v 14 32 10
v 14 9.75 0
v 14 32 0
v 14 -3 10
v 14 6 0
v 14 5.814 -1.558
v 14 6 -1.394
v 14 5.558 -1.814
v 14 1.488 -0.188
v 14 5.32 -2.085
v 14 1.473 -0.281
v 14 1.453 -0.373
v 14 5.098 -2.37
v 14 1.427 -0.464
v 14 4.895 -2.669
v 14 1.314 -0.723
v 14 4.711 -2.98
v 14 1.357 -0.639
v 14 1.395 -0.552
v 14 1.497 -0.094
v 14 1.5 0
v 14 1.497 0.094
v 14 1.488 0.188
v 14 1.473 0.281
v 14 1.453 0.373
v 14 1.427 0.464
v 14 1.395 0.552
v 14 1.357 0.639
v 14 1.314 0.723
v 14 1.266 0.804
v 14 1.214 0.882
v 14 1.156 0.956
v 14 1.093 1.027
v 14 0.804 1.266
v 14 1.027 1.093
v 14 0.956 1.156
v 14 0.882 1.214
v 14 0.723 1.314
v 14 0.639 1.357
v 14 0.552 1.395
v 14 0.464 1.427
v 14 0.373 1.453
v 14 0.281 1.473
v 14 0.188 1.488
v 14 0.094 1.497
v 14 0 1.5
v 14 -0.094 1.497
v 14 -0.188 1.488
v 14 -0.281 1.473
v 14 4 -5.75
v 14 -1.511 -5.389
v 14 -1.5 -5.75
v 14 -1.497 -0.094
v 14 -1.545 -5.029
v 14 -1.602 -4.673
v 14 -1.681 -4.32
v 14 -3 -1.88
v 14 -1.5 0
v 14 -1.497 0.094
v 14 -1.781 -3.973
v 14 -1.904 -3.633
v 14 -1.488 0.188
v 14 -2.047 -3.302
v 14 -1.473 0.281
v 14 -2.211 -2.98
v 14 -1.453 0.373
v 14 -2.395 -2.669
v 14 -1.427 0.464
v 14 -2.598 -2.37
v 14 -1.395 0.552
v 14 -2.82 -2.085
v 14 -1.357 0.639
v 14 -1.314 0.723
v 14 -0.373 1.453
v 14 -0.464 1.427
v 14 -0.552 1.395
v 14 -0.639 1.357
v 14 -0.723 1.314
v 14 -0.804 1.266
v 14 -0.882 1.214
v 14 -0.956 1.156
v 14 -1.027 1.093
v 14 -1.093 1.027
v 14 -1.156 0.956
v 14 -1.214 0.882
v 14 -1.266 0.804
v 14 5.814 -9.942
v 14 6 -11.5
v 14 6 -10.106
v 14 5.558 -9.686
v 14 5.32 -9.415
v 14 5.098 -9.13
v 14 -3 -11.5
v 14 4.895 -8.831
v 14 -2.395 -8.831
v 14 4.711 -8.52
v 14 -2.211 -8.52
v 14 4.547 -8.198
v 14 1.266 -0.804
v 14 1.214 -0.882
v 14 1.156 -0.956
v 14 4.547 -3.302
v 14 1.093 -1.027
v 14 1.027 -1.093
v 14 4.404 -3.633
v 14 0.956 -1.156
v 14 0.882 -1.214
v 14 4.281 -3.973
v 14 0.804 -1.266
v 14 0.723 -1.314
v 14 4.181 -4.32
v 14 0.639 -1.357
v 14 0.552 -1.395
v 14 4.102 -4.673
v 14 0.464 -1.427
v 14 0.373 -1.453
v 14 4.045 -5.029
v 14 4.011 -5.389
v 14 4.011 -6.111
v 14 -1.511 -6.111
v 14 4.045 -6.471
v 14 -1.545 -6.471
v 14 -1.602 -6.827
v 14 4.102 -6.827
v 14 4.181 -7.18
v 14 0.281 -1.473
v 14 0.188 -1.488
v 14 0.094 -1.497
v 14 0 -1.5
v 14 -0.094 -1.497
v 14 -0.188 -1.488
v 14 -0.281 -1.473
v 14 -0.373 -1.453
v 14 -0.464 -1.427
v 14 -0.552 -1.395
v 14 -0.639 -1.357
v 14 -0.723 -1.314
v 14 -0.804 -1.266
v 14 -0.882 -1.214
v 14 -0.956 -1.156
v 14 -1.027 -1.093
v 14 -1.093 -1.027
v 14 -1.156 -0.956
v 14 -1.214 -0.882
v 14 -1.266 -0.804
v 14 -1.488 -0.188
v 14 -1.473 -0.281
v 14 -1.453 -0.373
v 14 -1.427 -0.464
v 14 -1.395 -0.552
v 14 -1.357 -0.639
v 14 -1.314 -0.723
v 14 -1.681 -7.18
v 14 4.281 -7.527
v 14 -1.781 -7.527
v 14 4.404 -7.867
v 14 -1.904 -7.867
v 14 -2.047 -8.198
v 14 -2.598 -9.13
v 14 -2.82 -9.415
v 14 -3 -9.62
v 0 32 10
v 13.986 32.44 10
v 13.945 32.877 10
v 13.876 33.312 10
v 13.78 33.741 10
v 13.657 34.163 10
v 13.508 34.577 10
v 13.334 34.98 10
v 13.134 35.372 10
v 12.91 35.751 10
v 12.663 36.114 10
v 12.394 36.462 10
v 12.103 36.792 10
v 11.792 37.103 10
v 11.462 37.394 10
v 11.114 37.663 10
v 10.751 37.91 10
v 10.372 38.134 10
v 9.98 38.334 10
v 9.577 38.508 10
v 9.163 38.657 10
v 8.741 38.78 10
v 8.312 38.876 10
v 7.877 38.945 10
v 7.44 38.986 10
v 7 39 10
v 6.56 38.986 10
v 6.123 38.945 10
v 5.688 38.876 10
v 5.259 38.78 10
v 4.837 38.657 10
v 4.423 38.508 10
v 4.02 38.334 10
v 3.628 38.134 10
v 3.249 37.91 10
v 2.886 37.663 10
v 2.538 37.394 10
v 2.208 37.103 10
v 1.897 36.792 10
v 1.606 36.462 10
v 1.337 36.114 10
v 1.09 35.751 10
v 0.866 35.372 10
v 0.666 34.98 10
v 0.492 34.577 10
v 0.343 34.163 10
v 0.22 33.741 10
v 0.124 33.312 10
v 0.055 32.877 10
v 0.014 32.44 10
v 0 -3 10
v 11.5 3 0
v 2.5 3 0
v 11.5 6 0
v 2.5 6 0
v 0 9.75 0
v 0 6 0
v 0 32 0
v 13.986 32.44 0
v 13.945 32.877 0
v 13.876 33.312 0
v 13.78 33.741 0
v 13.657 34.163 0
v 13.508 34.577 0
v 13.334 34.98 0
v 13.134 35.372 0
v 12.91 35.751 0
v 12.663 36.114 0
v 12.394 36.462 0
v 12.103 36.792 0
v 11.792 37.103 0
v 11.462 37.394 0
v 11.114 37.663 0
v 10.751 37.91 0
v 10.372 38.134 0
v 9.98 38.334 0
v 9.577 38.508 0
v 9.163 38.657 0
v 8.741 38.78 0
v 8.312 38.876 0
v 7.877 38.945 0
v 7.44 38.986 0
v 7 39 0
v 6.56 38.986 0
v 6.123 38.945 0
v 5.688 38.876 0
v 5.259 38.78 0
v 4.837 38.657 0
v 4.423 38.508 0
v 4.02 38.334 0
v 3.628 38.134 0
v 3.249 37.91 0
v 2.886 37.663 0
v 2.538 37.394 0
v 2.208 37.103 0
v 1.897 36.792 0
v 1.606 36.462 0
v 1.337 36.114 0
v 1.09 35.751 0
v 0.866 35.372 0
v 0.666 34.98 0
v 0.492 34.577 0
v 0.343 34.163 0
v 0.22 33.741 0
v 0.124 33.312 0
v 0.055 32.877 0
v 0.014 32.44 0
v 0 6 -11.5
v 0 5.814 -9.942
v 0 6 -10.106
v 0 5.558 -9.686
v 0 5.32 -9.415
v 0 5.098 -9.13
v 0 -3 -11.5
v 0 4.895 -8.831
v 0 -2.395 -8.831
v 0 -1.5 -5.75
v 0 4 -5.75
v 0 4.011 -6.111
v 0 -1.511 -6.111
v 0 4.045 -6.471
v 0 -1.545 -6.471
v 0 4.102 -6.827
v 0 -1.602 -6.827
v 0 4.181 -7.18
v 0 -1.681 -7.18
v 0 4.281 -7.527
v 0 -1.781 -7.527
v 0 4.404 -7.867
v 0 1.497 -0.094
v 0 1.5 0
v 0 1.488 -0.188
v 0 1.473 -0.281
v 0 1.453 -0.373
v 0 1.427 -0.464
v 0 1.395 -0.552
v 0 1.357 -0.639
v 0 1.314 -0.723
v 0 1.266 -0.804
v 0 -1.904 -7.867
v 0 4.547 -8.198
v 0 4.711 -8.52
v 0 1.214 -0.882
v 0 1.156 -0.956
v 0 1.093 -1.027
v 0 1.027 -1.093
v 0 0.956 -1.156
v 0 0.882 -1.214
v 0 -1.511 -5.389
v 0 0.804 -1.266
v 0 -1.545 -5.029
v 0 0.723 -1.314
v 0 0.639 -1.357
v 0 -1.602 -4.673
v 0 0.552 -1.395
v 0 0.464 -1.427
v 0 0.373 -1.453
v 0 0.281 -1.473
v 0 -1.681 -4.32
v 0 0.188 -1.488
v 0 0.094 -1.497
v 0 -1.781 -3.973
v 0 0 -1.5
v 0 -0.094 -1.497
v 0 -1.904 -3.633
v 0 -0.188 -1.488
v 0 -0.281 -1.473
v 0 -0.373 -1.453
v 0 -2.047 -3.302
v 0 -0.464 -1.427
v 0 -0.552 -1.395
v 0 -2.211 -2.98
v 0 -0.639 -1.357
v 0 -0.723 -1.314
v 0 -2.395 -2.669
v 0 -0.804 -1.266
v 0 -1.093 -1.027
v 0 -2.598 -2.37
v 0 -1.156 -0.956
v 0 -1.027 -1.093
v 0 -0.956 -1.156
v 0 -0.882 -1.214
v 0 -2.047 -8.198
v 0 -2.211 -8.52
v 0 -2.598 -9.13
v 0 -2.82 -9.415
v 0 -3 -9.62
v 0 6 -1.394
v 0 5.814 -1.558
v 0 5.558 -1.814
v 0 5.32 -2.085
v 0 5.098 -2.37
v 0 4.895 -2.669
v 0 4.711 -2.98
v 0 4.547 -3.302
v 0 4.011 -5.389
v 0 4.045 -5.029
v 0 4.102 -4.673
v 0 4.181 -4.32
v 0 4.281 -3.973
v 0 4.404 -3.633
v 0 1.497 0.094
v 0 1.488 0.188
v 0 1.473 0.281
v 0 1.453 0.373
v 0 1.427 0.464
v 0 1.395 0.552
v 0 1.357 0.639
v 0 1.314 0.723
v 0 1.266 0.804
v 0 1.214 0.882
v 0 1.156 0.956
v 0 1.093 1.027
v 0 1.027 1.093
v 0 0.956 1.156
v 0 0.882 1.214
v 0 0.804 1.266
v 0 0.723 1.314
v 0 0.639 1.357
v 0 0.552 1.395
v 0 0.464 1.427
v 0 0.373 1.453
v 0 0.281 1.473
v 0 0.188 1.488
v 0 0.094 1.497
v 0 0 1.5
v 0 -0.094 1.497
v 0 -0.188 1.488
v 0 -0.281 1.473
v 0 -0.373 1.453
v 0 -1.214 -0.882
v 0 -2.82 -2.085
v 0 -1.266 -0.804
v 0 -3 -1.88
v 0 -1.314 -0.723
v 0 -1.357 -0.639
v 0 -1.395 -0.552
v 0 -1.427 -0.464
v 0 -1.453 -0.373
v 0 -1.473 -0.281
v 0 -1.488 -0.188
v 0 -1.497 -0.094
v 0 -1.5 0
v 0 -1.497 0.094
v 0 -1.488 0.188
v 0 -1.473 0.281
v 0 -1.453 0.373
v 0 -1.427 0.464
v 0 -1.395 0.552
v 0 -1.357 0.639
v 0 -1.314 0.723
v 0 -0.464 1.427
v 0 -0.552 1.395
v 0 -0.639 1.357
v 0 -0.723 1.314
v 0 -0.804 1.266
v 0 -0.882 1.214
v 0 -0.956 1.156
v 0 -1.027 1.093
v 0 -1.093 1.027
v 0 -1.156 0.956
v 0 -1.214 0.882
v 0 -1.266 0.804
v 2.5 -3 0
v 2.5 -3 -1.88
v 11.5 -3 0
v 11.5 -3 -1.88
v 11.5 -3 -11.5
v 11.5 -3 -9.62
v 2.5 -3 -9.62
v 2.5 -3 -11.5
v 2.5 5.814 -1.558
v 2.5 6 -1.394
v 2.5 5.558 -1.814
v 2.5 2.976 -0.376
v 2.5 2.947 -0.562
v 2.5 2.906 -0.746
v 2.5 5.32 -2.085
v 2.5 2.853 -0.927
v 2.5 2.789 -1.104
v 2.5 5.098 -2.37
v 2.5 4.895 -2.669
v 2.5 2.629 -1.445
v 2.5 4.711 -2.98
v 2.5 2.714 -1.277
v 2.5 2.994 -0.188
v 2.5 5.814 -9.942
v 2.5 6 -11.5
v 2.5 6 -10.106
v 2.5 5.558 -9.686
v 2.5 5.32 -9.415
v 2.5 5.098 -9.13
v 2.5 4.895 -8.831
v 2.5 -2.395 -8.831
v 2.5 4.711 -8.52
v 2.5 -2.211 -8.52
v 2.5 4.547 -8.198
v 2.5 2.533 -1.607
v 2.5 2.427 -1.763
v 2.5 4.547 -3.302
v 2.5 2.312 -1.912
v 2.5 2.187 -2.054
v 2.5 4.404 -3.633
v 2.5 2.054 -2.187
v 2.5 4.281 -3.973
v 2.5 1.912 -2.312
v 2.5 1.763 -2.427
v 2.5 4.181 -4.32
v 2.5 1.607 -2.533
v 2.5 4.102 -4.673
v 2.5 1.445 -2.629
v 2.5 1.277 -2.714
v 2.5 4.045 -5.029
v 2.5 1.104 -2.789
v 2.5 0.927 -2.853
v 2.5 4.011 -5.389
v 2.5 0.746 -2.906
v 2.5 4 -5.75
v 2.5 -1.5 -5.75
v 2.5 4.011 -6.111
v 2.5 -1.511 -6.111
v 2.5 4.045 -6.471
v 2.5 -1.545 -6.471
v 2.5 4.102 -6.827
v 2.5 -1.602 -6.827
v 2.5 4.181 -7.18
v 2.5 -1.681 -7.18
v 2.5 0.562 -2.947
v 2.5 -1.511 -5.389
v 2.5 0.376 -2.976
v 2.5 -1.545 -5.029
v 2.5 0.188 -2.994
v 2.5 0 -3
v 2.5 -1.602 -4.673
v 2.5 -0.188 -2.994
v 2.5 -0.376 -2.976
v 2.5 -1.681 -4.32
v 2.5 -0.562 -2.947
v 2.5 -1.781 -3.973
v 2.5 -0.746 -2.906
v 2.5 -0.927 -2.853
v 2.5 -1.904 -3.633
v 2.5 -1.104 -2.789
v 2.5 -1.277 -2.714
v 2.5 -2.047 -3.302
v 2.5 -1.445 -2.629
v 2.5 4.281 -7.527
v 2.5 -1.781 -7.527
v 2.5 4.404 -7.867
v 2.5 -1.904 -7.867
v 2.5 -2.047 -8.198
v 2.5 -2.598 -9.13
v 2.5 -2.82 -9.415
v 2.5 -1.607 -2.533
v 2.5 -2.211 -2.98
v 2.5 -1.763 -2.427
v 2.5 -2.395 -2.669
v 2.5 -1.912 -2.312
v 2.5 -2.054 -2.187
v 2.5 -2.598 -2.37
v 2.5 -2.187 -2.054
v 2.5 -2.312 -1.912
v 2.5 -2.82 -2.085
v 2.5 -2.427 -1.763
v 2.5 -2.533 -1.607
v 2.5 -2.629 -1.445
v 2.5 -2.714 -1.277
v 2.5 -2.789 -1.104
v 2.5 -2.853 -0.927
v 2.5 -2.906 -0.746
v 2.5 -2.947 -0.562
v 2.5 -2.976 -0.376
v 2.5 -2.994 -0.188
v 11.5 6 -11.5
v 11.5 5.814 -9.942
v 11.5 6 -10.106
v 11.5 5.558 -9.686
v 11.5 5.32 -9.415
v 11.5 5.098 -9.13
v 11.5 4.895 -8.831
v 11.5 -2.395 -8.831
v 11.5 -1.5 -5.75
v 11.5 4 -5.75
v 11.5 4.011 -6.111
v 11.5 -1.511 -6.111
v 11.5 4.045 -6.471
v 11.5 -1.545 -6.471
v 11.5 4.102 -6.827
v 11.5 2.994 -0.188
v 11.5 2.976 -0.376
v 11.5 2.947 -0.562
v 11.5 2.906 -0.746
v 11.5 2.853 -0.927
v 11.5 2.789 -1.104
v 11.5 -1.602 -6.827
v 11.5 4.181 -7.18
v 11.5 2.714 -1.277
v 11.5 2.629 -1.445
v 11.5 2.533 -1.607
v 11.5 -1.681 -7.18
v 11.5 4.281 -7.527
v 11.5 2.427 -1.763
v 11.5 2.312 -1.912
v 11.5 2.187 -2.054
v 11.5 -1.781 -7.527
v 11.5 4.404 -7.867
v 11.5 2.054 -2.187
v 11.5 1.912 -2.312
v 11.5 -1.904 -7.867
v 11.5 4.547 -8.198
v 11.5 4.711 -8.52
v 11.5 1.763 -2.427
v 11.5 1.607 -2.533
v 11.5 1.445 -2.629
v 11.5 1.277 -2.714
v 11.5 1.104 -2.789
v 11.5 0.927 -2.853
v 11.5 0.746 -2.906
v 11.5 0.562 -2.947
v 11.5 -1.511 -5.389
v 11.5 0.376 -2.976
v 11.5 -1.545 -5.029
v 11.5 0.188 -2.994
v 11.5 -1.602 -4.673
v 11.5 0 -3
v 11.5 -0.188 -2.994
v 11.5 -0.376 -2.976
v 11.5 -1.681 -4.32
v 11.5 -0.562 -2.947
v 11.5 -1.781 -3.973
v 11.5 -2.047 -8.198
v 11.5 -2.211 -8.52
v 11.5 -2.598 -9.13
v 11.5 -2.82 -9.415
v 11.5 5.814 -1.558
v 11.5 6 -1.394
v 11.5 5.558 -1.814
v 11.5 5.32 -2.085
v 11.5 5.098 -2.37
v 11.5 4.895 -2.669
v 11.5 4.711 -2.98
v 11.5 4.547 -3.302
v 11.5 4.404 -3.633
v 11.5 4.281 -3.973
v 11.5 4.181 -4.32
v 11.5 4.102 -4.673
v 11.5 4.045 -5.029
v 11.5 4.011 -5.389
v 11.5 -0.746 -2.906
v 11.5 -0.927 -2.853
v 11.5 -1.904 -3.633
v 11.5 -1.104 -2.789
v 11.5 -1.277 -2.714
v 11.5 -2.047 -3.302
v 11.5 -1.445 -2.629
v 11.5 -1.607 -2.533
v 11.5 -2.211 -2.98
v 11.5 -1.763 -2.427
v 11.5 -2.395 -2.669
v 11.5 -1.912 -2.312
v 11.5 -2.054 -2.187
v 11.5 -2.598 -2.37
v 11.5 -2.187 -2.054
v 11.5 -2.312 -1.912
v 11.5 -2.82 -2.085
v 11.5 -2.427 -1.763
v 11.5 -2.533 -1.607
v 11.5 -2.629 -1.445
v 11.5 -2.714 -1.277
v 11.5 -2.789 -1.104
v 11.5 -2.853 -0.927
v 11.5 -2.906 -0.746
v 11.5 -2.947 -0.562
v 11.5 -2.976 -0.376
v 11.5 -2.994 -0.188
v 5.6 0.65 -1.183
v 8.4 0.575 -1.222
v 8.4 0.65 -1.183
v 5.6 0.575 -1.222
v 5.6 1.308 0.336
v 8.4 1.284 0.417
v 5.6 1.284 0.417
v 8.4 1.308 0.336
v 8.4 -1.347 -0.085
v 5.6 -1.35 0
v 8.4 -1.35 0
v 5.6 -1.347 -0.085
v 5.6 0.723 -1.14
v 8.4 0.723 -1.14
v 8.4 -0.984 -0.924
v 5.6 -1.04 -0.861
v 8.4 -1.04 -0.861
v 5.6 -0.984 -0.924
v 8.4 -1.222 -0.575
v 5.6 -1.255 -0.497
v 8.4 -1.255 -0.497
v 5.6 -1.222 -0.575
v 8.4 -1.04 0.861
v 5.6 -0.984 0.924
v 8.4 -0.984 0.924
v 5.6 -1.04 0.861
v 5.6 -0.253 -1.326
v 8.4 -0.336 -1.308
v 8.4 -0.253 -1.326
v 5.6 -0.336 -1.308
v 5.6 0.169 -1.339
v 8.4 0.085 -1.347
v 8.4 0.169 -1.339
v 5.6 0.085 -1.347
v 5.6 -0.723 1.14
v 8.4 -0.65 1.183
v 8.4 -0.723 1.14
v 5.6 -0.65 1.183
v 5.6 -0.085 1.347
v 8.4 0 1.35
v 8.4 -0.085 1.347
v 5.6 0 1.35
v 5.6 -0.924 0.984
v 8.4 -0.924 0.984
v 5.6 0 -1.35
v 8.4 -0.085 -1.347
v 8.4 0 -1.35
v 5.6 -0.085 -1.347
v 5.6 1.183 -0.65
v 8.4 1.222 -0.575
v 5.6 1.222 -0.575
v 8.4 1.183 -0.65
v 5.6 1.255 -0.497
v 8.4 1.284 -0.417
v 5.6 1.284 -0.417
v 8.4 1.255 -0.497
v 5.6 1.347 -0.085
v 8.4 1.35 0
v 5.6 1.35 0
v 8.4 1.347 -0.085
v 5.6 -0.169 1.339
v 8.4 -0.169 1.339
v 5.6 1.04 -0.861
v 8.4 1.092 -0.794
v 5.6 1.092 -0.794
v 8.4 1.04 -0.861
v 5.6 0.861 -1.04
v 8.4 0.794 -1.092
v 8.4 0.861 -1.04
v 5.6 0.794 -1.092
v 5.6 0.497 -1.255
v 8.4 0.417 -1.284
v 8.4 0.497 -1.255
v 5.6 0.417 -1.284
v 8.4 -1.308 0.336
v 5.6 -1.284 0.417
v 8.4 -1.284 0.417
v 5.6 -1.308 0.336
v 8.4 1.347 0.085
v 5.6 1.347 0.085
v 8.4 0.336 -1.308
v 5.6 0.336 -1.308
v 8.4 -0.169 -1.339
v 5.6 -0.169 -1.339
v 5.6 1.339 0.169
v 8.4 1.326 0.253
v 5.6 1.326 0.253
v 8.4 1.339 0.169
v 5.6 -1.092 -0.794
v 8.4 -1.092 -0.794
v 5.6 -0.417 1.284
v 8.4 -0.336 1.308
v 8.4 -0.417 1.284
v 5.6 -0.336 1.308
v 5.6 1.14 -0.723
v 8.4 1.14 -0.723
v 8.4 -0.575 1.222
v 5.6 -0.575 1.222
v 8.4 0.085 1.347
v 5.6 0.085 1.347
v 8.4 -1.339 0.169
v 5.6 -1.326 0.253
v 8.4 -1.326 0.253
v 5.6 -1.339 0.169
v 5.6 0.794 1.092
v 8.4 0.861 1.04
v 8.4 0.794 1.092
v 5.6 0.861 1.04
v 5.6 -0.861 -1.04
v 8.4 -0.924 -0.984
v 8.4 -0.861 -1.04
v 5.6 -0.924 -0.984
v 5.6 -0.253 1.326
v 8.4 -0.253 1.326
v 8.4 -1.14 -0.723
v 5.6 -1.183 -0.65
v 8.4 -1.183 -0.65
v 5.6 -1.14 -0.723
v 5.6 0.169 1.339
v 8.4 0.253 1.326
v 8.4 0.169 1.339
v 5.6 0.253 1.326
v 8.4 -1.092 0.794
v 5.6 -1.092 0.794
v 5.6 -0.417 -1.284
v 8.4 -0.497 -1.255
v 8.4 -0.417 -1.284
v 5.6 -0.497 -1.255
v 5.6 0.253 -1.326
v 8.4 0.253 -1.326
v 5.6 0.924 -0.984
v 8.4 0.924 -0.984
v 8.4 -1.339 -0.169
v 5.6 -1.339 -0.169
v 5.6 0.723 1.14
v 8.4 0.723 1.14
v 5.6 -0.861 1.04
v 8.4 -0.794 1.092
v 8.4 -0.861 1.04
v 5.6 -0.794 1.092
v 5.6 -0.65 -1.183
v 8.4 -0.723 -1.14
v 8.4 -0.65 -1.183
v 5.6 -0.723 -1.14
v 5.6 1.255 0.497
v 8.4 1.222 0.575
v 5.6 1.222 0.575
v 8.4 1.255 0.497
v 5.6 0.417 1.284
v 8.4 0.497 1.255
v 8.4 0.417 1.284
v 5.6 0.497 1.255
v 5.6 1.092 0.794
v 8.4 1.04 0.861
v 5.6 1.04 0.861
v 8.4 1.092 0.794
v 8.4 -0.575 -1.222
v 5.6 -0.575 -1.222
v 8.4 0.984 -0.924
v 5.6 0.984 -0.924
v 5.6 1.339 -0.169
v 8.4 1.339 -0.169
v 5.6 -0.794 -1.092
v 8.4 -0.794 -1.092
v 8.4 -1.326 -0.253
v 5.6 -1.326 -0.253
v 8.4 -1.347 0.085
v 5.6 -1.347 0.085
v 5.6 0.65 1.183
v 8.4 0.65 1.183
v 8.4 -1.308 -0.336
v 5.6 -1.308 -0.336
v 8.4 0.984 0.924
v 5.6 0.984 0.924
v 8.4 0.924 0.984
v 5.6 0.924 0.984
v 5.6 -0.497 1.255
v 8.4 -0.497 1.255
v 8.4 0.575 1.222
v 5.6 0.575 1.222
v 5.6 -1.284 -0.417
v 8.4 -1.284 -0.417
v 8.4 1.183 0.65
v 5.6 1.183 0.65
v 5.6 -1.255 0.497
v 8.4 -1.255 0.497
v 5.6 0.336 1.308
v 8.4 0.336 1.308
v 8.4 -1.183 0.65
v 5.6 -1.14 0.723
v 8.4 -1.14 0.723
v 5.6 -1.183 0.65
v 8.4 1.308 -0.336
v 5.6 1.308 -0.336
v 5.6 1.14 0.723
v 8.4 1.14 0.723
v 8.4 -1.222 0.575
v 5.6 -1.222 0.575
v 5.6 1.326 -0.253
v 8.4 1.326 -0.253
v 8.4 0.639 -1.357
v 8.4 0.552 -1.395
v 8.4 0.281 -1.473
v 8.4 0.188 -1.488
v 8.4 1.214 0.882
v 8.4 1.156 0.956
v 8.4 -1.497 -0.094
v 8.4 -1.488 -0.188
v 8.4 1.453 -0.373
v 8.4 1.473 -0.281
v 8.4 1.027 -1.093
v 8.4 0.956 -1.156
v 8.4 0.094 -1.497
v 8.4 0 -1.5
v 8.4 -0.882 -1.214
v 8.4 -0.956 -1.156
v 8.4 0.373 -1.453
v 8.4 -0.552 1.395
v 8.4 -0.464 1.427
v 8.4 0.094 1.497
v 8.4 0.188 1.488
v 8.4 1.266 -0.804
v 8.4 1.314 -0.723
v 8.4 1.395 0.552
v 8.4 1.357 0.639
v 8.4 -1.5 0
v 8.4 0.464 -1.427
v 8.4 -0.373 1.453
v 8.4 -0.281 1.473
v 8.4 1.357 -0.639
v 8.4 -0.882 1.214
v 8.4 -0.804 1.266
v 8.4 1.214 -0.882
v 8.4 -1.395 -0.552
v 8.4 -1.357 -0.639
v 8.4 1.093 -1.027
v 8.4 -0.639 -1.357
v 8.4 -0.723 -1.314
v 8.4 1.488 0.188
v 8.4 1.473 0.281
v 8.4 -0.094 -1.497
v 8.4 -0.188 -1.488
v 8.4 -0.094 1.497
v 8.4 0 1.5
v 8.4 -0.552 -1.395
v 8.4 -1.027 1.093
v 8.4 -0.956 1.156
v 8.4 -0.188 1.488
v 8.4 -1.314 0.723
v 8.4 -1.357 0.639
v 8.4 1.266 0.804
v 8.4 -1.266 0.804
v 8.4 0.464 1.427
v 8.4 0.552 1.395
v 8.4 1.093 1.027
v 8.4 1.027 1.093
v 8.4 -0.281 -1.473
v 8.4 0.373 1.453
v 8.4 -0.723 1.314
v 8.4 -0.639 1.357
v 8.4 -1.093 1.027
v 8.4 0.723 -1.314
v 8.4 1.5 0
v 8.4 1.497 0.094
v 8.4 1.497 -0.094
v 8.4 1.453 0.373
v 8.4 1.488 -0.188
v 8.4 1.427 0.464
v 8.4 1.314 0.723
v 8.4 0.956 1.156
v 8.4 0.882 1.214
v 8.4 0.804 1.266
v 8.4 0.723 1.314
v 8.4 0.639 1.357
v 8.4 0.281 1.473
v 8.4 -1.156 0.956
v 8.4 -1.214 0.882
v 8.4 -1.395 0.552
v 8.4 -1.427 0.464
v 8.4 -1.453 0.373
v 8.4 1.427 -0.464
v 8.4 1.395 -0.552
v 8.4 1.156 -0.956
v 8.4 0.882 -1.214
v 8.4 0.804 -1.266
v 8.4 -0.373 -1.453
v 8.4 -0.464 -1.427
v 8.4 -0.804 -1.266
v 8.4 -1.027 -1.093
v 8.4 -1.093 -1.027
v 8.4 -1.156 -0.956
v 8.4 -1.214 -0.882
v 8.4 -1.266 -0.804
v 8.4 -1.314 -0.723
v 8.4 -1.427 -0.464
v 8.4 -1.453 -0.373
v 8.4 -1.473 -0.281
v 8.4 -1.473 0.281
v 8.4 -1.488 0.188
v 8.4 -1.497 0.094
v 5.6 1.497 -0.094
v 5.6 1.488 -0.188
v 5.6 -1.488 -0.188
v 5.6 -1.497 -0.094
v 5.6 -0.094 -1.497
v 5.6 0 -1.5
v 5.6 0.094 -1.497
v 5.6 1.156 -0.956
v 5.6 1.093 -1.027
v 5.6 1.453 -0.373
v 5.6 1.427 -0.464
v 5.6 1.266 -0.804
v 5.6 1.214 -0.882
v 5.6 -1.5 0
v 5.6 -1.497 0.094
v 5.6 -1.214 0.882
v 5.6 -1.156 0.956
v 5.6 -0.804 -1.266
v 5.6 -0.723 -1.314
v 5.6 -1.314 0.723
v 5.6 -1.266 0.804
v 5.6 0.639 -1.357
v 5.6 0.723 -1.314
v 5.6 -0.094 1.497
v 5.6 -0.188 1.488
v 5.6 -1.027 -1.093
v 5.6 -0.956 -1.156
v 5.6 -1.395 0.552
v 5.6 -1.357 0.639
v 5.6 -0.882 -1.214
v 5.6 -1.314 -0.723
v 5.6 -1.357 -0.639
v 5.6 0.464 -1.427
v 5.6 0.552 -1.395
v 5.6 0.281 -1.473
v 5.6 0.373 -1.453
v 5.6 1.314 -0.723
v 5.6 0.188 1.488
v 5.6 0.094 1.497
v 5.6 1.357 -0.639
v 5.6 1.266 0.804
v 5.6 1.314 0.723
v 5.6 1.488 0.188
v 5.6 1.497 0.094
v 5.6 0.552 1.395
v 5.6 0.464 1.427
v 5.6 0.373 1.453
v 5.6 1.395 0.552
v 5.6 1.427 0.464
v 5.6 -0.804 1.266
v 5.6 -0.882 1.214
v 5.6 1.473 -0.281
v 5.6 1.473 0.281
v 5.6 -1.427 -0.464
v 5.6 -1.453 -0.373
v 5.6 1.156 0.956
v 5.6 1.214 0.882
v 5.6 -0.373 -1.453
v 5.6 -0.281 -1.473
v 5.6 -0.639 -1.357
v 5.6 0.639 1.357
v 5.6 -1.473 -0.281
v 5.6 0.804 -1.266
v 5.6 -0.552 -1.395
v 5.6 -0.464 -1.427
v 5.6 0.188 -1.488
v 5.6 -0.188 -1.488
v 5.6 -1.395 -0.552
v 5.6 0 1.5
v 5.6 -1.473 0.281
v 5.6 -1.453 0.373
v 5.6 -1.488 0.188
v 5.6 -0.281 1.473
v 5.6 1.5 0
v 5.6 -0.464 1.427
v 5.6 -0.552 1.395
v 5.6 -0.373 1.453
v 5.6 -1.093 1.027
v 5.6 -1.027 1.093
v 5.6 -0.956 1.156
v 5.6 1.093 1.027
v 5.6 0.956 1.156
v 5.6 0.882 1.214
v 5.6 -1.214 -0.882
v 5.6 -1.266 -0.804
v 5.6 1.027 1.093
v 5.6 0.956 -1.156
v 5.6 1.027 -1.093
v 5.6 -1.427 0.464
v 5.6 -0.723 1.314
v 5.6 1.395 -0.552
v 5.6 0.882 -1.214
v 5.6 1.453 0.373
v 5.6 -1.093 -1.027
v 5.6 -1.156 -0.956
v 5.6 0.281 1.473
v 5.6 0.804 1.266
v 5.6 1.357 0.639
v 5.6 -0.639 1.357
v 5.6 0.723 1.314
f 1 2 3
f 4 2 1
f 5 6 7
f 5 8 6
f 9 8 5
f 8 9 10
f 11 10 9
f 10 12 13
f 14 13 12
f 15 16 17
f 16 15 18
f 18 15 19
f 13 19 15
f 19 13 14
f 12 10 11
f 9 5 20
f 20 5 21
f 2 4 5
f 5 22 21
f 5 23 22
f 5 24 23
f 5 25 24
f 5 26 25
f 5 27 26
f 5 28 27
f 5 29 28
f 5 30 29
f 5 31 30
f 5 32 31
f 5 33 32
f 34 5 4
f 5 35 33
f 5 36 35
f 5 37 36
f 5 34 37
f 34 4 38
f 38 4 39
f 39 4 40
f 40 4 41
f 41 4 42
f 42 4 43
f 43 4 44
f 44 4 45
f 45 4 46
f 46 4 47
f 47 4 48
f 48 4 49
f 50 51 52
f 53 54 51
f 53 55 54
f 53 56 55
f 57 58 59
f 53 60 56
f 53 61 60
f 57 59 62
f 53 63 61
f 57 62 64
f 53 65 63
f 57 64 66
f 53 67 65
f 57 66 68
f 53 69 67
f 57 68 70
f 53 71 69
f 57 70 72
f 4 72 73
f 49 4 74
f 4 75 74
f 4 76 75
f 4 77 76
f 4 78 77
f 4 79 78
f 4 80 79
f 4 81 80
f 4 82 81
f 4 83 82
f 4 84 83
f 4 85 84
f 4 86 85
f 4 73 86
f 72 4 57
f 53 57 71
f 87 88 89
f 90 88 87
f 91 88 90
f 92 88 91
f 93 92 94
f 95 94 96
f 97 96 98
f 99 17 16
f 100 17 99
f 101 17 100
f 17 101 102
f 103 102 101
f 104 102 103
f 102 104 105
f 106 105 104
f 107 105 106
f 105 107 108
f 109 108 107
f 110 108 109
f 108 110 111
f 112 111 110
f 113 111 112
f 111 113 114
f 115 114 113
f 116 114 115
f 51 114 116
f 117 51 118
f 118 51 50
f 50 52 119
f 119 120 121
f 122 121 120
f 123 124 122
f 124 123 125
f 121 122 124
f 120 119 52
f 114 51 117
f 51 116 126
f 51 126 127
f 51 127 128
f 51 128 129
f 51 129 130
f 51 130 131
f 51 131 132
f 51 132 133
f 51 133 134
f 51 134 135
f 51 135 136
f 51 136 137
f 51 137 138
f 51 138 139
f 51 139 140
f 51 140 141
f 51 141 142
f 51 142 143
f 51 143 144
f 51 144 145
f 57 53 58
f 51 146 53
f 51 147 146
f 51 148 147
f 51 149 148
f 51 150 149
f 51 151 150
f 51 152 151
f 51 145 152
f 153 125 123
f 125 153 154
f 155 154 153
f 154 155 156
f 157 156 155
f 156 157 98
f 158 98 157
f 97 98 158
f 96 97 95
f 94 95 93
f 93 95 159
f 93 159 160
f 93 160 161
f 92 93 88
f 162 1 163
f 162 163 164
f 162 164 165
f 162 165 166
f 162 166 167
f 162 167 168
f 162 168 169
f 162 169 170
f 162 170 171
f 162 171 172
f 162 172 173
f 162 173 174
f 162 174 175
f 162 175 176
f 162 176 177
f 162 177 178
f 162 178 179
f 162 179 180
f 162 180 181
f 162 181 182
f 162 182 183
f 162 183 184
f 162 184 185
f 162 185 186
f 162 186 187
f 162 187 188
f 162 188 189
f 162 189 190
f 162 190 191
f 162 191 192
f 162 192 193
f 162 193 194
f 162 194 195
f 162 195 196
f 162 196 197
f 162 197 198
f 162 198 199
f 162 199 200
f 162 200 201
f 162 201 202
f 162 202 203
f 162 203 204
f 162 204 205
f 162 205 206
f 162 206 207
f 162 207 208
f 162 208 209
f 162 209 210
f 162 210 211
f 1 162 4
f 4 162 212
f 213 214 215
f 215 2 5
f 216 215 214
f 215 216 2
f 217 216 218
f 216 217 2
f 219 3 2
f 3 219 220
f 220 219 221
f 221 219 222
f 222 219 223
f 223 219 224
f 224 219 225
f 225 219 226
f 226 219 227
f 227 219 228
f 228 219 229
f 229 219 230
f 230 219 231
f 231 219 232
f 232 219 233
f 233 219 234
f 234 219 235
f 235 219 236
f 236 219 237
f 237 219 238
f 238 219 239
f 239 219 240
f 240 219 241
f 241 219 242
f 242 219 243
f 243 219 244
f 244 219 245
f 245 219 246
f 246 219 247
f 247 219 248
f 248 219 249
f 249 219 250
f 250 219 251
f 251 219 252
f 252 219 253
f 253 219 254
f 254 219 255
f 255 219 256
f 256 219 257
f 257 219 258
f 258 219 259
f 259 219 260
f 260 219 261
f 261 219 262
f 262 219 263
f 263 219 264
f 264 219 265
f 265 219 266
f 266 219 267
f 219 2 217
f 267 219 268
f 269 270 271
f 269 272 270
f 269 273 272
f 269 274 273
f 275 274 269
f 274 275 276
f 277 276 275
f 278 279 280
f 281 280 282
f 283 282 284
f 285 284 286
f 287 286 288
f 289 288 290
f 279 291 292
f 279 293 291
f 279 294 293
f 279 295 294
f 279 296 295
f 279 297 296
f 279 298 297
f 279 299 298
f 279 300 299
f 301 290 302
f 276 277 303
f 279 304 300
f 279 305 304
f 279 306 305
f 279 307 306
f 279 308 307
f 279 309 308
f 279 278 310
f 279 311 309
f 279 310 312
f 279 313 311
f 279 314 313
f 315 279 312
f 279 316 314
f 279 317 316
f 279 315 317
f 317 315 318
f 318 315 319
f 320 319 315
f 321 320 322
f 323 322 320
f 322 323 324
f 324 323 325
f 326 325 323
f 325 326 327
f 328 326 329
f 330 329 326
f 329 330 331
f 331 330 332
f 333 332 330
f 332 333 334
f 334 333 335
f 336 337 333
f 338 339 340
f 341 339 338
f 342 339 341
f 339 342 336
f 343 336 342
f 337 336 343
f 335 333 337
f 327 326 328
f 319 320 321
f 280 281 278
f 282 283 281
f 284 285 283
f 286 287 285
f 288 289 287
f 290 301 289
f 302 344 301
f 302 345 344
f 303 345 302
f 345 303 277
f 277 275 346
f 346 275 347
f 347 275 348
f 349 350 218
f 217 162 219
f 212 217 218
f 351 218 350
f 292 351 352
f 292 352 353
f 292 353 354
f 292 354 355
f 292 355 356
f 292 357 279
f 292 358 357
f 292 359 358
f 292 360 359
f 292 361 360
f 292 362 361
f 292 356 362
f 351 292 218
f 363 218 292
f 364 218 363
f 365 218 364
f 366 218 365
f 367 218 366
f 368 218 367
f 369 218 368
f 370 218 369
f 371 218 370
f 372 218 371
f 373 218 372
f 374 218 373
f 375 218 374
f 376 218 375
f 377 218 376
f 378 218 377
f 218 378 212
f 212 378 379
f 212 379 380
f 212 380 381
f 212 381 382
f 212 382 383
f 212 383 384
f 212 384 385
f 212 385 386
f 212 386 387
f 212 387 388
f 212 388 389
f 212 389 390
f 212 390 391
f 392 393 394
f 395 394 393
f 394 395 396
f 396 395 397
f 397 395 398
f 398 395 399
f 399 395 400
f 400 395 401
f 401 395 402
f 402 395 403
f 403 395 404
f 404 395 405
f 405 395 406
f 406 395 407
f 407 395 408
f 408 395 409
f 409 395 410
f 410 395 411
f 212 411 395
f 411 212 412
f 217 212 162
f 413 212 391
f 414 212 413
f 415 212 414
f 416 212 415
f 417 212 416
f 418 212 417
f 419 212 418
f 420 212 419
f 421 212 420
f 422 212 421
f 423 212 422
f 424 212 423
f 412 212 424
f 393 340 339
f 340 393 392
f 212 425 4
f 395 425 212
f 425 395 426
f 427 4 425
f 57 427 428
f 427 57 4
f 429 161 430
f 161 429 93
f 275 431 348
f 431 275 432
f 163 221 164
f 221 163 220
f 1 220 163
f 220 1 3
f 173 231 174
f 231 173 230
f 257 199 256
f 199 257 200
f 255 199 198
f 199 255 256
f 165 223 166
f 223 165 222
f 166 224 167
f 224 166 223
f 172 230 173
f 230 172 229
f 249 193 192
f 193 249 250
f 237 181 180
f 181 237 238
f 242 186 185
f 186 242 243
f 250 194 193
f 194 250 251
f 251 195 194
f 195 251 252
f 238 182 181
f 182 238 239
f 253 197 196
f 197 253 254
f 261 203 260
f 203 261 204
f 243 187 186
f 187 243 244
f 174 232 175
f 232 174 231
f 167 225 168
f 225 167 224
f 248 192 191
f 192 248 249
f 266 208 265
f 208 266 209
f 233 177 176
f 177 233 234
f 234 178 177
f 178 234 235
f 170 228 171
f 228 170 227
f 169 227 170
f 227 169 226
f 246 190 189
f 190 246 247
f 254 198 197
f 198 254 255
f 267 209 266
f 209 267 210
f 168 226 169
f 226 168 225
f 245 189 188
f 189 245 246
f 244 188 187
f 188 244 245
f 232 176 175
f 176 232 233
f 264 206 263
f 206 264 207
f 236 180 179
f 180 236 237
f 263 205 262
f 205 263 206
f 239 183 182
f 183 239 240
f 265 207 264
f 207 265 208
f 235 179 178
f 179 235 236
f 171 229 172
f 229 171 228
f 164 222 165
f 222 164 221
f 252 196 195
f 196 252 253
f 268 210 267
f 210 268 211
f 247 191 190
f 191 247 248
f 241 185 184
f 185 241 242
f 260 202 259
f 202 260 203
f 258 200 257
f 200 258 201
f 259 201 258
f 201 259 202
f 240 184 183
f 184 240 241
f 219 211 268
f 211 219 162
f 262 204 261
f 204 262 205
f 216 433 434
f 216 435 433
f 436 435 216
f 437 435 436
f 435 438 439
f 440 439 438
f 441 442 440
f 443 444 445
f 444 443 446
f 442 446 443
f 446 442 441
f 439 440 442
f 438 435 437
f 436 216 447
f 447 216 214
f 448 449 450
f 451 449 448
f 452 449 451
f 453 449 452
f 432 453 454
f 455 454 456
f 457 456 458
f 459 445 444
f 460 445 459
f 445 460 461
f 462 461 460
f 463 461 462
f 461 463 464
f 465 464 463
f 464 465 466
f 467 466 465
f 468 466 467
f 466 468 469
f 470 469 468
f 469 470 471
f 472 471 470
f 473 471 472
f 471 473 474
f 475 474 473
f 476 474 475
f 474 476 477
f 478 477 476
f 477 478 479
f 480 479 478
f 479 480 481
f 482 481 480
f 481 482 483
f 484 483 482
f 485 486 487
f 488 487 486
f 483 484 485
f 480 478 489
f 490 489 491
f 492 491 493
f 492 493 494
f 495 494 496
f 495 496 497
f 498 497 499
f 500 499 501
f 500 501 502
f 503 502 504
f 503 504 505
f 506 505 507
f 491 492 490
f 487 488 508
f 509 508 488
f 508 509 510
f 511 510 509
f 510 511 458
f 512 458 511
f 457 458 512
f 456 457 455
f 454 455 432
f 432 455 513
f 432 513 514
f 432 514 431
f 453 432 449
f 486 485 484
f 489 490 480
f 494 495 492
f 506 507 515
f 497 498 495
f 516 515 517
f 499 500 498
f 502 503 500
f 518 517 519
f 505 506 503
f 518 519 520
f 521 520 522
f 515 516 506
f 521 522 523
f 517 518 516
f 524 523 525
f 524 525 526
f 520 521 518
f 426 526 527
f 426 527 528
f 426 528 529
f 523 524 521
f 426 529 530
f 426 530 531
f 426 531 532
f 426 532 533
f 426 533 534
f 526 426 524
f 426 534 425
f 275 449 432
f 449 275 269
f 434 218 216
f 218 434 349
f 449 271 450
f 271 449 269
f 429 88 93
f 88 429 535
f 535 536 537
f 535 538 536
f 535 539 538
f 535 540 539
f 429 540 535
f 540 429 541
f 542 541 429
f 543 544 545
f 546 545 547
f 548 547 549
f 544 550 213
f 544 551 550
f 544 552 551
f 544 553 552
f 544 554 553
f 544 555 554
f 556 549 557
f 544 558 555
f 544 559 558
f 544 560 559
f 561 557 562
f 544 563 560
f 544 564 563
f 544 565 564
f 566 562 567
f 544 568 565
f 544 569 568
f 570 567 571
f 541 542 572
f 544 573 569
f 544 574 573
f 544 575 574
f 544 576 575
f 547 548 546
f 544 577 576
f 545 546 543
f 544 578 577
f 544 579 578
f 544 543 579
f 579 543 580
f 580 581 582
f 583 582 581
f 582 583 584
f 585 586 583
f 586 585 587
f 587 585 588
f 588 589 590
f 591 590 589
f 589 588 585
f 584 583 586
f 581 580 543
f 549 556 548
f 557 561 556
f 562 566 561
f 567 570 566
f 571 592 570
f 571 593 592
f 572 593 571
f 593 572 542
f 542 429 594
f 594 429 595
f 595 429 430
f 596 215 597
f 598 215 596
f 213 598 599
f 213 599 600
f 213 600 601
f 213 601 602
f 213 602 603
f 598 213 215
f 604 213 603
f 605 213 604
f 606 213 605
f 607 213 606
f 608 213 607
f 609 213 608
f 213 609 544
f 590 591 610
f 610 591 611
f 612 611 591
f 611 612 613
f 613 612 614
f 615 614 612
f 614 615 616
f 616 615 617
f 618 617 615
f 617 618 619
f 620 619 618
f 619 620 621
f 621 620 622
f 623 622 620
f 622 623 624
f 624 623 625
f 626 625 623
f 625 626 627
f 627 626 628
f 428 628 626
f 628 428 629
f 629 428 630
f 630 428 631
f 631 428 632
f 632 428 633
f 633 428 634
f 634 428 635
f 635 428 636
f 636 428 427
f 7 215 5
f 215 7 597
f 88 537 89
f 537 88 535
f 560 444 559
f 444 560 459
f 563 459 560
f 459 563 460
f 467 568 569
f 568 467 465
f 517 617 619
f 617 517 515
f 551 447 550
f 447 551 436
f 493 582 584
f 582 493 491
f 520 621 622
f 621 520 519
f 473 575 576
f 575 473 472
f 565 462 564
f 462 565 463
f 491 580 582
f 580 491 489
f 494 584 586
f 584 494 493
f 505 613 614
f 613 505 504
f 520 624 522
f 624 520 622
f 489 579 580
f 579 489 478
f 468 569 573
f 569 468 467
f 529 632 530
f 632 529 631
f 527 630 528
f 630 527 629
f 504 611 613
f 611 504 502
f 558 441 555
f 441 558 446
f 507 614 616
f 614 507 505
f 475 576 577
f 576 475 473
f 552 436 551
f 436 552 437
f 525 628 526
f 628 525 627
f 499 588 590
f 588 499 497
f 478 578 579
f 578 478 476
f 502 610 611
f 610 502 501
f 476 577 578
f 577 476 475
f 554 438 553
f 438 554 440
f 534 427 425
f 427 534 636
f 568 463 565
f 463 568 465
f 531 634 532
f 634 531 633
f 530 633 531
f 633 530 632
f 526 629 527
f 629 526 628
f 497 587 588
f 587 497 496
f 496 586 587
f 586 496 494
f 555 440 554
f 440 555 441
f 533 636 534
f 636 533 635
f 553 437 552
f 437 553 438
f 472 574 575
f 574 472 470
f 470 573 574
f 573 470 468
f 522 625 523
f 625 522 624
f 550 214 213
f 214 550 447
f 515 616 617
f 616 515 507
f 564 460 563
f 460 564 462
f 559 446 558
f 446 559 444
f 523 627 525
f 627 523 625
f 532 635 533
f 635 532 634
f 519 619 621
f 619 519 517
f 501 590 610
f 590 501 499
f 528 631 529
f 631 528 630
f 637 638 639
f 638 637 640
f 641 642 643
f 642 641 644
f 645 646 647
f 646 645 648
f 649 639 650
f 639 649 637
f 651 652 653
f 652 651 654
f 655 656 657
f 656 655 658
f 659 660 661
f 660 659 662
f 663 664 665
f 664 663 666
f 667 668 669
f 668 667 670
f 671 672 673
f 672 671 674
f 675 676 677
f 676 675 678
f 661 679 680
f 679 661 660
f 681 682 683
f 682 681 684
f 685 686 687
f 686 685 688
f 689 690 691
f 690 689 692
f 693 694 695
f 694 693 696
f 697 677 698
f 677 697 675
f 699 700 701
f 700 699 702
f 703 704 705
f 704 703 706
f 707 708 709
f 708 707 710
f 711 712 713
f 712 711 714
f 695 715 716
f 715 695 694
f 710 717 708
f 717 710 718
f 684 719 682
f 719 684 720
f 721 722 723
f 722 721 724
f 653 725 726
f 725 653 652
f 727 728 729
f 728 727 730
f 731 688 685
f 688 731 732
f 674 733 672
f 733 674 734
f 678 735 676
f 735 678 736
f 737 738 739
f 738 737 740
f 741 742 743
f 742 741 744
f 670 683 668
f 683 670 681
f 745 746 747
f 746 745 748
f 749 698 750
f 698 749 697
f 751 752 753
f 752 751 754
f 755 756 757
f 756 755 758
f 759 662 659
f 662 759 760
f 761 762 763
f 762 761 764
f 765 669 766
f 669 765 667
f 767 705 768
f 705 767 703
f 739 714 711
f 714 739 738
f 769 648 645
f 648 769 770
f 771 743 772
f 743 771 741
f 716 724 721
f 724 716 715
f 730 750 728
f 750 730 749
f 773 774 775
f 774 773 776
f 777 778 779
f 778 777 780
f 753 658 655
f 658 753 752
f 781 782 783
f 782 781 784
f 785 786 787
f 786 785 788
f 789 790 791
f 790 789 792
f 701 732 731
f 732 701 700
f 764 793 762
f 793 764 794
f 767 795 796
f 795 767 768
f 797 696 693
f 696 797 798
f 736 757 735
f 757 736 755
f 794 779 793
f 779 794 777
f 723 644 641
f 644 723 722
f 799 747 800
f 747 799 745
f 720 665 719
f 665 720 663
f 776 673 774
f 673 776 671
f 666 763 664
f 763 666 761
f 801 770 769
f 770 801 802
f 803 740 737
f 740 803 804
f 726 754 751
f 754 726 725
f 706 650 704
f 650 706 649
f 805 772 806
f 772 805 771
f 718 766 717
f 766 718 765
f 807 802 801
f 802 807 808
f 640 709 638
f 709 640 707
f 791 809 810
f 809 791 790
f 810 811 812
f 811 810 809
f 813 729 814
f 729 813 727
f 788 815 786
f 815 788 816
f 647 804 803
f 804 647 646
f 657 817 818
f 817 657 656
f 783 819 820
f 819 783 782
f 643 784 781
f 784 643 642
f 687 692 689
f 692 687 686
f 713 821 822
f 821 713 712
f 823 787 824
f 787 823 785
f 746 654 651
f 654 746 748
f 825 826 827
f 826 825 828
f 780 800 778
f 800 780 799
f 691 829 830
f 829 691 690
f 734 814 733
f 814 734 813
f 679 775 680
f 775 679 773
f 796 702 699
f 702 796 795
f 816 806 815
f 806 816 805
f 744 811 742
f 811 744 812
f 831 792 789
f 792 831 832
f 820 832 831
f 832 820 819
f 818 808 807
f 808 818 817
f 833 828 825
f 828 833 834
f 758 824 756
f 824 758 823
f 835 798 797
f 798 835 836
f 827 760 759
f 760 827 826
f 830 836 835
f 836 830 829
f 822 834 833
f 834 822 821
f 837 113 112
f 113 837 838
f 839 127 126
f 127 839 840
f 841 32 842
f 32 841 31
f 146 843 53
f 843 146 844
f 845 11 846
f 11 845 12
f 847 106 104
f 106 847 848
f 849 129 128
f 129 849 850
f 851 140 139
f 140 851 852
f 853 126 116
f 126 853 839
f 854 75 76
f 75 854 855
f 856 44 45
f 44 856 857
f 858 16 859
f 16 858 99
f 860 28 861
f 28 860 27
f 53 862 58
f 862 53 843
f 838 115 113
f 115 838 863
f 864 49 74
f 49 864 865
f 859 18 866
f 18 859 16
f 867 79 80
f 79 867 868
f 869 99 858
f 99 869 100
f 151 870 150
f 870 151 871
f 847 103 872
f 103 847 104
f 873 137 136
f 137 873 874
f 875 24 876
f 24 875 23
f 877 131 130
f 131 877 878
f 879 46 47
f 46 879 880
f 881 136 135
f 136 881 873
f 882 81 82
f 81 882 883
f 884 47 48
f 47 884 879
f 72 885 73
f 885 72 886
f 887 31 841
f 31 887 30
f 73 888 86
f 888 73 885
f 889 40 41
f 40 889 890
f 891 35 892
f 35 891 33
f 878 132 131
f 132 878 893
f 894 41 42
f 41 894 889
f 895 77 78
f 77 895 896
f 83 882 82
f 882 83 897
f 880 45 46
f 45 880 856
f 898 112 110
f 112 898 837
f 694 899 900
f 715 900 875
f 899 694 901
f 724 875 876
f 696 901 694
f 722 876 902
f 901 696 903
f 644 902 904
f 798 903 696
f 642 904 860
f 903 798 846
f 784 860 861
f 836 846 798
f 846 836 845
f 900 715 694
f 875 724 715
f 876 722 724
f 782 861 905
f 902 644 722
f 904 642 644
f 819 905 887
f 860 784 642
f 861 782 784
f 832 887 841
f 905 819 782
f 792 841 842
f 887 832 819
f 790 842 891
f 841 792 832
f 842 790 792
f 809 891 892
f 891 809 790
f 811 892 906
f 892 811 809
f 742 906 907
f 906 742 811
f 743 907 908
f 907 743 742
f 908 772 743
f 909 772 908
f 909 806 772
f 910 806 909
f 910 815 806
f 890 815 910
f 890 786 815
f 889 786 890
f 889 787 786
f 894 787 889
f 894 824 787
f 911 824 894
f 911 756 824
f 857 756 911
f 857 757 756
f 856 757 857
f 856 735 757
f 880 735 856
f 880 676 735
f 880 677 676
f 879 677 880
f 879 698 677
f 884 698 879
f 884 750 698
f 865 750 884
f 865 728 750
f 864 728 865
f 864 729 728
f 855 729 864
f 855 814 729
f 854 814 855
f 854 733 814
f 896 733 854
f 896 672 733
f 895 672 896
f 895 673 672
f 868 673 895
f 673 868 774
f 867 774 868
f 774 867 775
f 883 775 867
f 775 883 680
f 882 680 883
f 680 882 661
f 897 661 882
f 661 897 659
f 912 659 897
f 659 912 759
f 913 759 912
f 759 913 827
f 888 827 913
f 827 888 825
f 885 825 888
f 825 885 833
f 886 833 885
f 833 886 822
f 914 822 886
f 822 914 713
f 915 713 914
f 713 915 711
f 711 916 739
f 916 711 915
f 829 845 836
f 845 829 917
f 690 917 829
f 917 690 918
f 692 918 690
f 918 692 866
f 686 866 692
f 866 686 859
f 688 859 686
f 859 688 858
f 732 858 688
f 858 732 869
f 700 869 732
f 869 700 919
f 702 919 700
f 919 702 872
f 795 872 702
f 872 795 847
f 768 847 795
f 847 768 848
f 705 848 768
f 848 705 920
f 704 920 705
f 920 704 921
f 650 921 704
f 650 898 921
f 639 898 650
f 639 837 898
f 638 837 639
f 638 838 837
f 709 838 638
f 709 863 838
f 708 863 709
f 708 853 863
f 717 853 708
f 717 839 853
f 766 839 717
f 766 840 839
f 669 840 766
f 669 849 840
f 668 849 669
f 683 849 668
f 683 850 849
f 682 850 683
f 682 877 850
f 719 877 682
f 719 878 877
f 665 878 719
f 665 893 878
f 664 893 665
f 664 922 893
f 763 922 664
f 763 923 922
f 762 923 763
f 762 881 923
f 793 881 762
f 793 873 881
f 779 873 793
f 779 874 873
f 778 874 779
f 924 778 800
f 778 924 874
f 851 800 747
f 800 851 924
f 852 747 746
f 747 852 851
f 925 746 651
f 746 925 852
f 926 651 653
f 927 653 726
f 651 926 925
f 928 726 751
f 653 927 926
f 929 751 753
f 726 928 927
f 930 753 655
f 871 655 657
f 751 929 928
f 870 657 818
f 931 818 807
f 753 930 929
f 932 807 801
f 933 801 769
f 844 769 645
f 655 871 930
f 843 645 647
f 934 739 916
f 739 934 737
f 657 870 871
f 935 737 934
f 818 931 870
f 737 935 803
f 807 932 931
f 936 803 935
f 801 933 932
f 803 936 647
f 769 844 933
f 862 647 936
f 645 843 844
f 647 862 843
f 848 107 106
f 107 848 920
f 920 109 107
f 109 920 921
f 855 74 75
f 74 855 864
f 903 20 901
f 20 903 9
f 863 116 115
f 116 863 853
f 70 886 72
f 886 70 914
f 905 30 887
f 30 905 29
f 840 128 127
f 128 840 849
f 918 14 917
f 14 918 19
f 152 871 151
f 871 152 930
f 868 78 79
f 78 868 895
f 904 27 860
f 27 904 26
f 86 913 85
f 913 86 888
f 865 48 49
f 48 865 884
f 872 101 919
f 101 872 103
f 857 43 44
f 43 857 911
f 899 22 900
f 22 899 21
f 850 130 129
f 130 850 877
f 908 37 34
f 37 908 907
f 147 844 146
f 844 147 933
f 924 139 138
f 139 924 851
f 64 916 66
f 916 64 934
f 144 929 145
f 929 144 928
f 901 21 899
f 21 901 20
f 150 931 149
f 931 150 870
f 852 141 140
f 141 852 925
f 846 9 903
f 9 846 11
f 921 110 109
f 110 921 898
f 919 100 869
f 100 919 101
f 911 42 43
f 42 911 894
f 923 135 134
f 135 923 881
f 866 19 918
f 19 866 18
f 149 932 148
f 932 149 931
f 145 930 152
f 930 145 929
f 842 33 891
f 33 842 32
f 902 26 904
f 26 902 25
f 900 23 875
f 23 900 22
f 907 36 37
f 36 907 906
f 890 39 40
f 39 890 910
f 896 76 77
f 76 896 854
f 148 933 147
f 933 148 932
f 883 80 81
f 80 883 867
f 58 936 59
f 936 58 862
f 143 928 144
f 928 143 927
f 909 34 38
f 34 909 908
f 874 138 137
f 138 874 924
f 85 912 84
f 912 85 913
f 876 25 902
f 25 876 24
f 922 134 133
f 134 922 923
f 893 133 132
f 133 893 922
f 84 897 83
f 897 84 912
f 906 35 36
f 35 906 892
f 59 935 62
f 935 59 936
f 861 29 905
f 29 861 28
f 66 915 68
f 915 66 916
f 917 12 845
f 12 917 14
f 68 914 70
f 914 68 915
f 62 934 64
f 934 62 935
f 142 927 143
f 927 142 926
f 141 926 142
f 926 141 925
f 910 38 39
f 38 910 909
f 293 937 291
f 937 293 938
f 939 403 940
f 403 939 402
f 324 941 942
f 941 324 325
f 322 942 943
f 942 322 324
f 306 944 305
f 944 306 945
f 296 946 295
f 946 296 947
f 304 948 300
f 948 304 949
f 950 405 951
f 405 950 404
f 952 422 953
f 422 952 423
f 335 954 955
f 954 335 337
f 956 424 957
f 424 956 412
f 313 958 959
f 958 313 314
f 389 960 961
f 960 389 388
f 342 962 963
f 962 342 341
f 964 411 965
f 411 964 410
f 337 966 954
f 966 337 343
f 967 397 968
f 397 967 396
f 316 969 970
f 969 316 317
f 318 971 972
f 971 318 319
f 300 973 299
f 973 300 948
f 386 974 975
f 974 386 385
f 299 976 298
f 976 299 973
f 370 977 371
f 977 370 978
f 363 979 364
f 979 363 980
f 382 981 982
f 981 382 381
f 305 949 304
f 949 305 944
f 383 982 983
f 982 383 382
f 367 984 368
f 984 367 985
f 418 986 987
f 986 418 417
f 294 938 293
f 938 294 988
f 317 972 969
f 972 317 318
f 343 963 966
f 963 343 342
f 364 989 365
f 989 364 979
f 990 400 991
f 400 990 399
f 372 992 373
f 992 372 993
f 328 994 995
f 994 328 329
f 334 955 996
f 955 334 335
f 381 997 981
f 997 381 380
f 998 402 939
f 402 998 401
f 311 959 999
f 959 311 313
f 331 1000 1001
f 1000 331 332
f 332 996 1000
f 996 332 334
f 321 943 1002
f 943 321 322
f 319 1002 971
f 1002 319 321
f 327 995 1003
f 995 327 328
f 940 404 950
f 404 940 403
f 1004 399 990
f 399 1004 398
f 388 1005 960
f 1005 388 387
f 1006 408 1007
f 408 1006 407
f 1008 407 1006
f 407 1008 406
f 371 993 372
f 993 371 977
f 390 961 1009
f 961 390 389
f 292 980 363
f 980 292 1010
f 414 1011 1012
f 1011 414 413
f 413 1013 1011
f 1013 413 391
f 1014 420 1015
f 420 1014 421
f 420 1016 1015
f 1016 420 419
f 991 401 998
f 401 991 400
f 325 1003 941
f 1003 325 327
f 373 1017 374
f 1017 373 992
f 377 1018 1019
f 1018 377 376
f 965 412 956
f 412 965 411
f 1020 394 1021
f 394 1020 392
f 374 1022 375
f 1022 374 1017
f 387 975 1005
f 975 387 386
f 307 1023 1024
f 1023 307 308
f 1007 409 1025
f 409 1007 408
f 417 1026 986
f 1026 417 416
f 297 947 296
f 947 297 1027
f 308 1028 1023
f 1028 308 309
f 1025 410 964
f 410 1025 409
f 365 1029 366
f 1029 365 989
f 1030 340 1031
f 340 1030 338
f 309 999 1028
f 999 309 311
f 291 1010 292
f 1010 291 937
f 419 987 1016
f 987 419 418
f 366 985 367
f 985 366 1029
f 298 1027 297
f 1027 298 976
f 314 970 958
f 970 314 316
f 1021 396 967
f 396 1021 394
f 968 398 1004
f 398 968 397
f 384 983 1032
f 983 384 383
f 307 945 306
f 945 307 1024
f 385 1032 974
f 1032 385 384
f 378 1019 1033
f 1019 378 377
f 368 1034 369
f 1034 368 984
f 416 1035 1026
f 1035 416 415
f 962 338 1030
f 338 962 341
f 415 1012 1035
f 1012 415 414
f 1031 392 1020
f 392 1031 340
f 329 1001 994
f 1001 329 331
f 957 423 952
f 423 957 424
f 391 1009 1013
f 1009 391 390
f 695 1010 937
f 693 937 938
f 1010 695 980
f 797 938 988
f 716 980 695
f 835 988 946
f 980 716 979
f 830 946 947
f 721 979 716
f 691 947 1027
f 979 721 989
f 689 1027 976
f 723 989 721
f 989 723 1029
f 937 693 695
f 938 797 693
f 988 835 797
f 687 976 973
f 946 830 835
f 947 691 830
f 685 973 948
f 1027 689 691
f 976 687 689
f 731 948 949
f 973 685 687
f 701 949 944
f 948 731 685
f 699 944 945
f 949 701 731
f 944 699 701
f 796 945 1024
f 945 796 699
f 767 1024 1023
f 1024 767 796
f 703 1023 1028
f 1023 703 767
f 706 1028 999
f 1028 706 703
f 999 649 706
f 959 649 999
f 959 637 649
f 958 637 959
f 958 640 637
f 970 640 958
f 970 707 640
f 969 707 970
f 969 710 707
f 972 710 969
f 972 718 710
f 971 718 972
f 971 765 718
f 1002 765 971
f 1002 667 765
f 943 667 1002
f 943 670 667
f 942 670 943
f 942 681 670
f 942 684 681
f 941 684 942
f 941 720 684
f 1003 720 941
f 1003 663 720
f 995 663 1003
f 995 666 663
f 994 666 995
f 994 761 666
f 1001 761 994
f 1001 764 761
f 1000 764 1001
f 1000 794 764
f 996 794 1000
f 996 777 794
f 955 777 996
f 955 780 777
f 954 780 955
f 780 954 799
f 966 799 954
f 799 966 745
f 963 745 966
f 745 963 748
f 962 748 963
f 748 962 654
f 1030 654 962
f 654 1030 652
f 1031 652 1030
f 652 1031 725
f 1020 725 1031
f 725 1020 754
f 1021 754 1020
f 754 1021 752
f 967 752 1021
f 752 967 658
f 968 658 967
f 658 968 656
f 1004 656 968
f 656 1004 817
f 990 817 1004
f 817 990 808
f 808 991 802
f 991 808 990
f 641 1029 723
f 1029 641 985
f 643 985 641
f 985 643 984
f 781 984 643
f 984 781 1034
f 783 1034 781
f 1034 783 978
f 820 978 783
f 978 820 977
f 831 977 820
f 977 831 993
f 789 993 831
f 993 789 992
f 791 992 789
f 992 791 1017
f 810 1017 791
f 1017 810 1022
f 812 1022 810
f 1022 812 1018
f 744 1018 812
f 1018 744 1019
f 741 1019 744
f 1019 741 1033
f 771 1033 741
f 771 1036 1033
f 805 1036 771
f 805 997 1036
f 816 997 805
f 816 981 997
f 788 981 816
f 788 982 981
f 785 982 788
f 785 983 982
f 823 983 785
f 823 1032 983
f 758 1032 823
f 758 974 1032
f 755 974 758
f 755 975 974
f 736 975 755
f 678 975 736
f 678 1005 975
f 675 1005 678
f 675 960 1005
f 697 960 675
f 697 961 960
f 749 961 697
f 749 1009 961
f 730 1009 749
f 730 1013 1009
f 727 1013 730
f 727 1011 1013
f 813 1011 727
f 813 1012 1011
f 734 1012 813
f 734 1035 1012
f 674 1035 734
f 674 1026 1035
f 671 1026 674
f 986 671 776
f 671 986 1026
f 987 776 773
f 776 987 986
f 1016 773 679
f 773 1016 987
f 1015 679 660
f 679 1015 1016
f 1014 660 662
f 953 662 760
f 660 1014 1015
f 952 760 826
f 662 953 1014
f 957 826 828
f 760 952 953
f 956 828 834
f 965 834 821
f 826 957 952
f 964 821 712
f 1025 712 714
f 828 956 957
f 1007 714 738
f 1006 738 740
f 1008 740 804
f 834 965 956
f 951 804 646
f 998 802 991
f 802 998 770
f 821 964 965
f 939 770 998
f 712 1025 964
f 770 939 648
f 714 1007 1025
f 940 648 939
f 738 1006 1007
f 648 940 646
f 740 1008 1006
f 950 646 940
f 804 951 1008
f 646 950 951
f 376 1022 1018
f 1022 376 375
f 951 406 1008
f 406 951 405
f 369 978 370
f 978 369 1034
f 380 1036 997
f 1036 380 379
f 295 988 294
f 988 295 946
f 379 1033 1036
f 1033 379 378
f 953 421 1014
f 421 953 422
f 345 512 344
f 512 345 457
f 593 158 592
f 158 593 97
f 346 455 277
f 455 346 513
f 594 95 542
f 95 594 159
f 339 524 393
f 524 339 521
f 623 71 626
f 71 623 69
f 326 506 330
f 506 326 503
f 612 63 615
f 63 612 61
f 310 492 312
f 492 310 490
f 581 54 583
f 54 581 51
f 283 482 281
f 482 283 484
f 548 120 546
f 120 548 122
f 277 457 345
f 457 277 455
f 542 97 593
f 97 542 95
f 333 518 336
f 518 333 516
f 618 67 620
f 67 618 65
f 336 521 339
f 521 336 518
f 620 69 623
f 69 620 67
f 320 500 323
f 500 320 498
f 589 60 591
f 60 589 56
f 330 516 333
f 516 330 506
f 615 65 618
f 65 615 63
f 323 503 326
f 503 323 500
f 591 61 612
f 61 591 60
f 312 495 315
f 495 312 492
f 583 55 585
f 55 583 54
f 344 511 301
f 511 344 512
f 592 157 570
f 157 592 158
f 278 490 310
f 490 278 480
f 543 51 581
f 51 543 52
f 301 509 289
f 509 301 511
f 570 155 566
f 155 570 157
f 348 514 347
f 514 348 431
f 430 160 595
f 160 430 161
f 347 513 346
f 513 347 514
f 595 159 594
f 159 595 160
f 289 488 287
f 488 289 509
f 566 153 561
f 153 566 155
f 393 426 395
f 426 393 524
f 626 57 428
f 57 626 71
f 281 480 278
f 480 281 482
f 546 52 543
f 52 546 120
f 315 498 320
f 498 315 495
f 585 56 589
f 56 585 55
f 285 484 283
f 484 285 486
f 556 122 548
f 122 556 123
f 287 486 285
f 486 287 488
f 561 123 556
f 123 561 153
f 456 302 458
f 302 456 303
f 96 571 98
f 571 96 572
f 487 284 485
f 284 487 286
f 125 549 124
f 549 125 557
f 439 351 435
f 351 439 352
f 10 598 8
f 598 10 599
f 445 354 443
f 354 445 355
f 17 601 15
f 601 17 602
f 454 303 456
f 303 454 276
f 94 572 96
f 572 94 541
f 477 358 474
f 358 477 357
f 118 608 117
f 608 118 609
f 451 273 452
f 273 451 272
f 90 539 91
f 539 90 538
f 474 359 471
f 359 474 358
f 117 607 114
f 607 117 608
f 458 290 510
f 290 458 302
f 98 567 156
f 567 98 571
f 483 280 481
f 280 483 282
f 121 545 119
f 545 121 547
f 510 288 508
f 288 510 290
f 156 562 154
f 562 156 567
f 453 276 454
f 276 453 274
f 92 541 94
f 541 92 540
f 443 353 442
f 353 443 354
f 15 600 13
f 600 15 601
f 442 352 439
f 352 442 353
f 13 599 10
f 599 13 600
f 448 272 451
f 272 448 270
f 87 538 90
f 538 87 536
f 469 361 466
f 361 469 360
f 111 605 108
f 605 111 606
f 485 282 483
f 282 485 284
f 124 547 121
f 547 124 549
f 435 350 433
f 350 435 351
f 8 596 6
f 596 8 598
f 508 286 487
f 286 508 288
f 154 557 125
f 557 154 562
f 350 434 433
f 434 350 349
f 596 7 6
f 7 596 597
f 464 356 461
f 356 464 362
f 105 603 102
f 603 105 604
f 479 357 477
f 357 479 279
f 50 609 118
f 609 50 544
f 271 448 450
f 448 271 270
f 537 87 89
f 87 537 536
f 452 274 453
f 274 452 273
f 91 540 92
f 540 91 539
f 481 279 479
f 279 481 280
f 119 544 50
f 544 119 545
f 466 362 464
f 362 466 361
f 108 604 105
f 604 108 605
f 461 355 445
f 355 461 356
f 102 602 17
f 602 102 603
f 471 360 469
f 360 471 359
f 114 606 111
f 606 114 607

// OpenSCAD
$fn=100;

h = 10;
w = 14;
hole = 2.7;
hole_max = 3.0;
pin_w = 2.5;
pin_h = 11.5;

module water_button() {
    difference() {
        union() {
            translate([0, -3, 0])
                union() {
                    cube([w, 42 - w/2, h]);
                    translate([w/2, 42 - w/2, 0])
                        cylinder(h=h, d=w);
                }
            translate([0, -3, -pin_h])    
                cube([pin_w, 9, pin_h]);
            translate([w-pin_w, -3, -pin_h])    
                cube([pin_w, 9, pin_h]);
            translate([w/2, 0, 0])    
                rotate([0, 90, 0])    
                    cylinder(h=w, r=3, center=true);    
        }
        translate([w/2, 0, 0])    
            rotate([0, 90, 0])
                cylinder(h=w+1, d=hole, center=true);         
        translate([w, 0, 0])    
            rotate([0, 90, 0])     
                cylinder(h=w*4/5, d=hole_max, center=true);  
        translate([0, 0, 0])    
            rotate([0, 90, 0])     
                cylinder(h=w*4/5, d=hole_max, center=true);  
        translate([w/2, -pin_h/2-1.5, -pin_h/2])  
            rotate([0, 90, 0])
                cylinder(h=w+1, d=pin_h, center=true);
        translate([w/2, pin_h/2+4, -pin_h/2])  
            rotate([0, 90, 0])
                cylinder(h=w+1, d=pin_h, center=true);

    }
}

water_button();
